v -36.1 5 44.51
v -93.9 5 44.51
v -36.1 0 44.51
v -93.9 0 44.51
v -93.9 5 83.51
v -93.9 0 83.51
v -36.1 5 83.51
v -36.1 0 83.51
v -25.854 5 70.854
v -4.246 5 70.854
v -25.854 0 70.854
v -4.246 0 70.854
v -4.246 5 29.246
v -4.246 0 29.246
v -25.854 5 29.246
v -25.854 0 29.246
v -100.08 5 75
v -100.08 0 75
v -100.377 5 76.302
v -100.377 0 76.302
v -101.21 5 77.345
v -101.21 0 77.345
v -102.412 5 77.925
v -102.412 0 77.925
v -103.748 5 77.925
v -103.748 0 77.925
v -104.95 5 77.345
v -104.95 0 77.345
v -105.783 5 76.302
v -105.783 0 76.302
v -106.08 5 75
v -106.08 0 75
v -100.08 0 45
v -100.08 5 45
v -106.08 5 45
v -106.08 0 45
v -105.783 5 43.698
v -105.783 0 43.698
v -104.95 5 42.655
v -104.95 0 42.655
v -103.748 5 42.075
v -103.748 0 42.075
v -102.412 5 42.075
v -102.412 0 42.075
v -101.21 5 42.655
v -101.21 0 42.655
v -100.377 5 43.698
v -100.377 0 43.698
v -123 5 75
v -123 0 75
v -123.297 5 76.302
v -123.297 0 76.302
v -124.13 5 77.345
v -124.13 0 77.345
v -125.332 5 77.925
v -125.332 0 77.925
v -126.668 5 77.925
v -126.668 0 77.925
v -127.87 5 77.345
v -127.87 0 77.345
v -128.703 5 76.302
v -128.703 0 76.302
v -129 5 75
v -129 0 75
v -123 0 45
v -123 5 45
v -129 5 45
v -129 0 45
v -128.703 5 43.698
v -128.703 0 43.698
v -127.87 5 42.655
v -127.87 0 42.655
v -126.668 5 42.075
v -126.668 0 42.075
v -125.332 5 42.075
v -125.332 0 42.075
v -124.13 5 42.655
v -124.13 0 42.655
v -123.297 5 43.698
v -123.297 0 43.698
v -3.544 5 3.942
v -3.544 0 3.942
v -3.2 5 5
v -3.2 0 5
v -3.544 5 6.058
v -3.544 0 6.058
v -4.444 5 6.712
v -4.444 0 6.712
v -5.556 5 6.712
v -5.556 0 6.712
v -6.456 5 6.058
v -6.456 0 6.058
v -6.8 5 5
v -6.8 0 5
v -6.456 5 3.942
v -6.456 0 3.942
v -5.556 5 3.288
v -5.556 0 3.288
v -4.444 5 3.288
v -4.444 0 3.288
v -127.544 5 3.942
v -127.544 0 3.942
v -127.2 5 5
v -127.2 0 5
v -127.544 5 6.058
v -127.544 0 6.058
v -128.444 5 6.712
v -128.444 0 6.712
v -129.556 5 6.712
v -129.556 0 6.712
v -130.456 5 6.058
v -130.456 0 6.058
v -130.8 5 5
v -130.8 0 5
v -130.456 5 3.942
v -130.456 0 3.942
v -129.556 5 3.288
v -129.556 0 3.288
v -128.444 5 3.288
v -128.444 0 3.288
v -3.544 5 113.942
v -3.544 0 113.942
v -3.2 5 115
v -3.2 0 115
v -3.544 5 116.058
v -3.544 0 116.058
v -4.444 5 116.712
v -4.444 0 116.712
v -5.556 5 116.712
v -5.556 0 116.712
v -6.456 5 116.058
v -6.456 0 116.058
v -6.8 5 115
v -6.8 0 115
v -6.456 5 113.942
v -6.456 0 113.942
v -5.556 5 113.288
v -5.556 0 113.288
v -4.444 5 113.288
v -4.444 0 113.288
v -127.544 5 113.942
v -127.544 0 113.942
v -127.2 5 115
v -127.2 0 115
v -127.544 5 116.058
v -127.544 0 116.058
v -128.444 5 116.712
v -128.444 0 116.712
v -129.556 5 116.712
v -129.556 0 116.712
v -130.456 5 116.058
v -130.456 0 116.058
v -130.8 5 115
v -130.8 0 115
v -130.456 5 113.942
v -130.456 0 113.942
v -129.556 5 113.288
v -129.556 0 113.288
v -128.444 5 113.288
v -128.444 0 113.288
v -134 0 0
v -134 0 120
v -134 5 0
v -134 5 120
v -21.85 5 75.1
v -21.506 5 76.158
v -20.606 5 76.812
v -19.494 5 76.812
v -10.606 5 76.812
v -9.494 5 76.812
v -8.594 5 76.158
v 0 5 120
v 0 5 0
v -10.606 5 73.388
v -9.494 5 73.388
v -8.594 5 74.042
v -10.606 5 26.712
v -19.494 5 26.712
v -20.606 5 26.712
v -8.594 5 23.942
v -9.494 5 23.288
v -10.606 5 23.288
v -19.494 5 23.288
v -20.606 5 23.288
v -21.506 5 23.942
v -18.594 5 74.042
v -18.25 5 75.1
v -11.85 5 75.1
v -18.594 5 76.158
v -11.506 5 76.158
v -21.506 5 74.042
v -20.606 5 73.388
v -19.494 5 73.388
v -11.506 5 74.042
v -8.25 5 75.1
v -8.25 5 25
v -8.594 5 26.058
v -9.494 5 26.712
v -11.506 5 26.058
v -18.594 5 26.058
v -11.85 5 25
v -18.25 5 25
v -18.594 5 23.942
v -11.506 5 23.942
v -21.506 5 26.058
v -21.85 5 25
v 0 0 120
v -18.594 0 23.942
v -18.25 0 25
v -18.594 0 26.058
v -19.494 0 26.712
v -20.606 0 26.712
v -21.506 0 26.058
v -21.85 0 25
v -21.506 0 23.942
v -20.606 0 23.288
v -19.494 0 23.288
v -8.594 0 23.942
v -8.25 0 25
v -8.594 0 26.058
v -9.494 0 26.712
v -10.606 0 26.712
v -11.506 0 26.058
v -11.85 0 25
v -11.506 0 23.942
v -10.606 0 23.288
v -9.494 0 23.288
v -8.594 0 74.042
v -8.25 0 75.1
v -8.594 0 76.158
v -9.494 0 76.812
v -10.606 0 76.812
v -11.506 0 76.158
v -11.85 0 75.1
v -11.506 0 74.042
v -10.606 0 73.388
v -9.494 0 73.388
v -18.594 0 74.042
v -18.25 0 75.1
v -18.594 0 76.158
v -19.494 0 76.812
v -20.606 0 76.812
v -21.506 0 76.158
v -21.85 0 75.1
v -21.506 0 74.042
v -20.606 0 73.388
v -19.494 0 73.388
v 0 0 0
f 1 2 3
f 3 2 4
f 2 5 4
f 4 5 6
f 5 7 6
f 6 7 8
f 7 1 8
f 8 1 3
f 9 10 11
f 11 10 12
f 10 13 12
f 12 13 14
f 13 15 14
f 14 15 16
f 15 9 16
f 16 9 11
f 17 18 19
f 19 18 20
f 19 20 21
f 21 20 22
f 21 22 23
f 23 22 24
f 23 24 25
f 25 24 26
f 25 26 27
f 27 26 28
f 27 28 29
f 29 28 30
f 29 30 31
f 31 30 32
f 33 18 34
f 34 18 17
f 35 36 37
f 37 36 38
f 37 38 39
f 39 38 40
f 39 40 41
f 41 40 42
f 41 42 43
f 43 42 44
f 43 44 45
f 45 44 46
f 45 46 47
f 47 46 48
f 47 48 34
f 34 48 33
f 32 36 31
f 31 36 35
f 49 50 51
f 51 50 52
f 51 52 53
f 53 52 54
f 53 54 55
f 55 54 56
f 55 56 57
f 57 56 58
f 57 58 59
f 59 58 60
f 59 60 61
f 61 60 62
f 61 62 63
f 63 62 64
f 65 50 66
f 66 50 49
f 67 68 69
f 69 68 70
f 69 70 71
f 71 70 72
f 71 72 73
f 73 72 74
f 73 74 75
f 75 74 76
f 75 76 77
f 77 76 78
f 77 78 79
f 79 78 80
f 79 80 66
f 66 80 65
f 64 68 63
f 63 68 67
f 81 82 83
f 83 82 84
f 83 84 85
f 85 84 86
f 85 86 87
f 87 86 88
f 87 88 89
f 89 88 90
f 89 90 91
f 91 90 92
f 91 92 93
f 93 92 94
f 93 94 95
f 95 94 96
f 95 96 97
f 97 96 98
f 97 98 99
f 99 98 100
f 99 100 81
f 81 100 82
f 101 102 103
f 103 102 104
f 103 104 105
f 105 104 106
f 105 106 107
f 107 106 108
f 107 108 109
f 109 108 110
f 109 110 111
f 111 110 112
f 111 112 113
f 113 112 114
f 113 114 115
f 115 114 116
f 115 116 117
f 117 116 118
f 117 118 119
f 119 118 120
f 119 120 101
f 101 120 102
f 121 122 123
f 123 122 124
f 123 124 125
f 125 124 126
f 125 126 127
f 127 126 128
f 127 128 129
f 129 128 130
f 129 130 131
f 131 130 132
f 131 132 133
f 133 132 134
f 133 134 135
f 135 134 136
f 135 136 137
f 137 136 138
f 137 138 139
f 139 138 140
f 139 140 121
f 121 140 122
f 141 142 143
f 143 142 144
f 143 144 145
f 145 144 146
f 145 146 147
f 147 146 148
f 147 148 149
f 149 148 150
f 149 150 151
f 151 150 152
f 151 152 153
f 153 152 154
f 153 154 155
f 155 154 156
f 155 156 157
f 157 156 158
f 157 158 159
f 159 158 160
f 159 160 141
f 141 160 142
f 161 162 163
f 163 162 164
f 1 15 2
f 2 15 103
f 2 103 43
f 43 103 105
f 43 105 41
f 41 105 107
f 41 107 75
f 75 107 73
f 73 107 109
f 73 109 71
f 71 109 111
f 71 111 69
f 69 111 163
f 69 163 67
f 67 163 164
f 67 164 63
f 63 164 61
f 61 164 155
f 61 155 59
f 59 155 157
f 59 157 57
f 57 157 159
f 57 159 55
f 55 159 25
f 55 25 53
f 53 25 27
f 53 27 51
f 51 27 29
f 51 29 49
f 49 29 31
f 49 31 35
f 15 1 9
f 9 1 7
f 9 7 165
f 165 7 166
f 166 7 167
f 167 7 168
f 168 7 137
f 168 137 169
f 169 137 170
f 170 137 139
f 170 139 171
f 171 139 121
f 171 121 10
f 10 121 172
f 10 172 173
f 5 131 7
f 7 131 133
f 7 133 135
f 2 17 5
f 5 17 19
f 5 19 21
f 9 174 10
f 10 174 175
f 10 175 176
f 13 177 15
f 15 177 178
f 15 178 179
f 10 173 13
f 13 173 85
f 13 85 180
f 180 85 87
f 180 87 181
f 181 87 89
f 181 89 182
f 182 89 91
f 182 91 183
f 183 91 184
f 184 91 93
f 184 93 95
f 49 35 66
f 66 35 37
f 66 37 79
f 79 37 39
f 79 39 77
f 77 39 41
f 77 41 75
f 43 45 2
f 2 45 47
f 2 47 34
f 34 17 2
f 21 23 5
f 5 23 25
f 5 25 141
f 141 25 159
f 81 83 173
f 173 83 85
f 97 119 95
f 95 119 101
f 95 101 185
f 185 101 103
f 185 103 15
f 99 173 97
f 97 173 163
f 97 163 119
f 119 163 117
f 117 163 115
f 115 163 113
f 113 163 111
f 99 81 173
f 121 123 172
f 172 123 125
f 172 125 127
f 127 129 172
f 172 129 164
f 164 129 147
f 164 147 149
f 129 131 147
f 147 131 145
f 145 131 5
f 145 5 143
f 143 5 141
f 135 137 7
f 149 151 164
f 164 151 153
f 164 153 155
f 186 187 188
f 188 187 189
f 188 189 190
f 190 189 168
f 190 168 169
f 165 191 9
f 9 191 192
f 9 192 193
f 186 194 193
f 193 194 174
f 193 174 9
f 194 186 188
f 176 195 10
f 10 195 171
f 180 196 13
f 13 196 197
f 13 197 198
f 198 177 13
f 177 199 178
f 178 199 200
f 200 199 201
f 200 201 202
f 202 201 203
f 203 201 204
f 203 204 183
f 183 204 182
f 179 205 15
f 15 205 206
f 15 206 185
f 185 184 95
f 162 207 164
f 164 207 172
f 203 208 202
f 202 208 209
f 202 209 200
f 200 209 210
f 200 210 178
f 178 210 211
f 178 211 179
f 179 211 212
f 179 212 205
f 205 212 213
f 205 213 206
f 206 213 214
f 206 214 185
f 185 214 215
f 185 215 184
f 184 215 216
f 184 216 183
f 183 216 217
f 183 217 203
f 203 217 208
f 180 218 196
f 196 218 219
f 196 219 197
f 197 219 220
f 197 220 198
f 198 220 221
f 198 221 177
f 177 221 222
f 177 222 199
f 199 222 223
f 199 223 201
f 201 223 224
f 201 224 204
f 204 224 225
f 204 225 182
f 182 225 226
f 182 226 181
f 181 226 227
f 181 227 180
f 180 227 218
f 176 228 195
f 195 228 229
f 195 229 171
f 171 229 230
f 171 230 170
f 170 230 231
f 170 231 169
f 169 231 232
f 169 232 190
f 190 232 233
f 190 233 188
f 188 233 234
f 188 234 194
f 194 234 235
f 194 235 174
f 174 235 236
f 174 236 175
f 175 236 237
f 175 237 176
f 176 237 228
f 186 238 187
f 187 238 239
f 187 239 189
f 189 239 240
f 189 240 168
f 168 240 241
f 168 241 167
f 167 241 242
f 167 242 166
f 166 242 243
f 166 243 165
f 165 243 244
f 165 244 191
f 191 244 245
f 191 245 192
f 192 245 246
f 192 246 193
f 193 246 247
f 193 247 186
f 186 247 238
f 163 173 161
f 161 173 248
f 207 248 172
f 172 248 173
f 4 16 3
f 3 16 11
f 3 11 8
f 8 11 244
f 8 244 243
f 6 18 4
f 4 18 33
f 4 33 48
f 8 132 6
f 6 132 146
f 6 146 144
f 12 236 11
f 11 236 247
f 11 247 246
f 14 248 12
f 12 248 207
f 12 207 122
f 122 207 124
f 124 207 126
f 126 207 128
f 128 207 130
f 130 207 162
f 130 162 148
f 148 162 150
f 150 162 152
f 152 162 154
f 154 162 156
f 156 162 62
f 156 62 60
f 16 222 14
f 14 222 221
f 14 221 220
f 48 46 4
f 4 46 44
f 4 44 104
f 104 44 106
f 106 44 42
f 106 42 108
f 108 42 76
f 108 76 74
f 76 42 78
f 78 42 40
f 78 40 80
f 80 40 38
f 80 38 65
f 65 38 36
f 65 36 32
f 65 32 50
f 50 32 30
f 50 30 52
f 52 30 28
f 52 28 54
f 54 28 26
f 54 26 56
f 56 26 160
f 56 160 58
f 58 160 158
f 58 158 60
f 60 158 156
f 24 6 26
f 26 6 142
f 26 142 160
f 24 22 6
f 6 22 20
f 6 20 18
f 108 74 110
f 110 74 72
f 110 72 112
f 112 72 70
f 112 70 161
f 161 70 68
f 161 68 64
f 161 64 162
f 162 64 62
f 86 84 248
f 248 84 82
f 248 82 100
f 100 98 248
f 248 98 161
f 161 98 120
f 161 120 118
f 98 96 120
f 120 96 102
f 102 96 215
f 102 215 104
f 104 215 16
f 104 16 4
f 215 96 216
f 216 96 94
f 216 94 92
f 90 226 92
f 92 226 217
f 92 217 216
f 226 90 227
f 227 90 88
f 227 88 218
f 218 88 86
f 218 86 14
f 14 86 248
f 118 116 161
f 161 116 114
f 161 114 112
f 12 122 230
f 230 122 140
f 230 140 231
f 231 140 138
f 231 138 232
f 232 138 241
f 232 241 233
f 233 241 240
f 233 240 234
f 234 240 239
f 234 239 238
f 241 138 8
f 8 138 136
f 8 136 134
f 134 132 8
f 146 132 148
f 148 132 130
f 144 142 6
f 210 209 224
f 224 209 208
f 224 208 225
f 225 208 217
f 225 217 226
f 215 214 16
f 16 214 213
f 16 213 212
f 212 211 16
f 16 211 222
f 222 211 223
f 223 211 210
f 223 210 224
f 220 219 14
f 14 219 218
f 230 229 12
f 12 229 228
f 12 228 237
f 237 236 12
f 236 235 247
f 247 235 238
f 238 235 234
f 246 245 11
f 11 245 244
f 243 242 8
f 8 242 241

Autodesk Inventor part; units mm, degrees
ref_plane "YZ Plane" through (0, 0, 0) normal (1, 0, 0) x (0, 1, 0)
ref_plane "XZ Plane" through (0, 0, 0) normal (0, 1, 0) x (-1, 0, 0)
ref_plane "XY Plane" through (0, 0, 0) normal (0, 0, 1) x (1, 0, 0)
sketch "Sketch20" plane through (0, 0, 0) normal (0, 1, 0) x (-1, 0, 0)
  line L0 (0, 0) -> (181, 0)
  line L1 (181, 0) -> (181, 120)
  line L2 (181, 120) -> (0, 120)
  line L3 (0, 120) -> (0, 0)
  point P0 (90.5, 120)
  dimension "d122" = 181
  dimension "d123" = 120
extrude "Extrusion15" add sketch "Sketch20" along normal blind 5
sketch "Sketch22" plane through (0, 0, 0) normal (0, -1, 0) x (1, 0, 0)
  line L0 (-25.1, 70.1) -> (-5, 70.1)
  line L1 (-5, 70.1) -> (-5, 30)
  line L2 (-5, 30) -> (-25.1, 30)
  line L3 (-25.1, 30) -> (-25.1, 70.1)
  circle A0 centre (-15.05, 60) radius 1 construction
  line L4 (0, 120) -> (0, 0) construction
  circle A1 centre (-20.05, 25) radius 1.8
  circle A2 centre (-10.05, 25) radius 1.8
  circle A3 centre (-20.05, 75.1) radius 1.8
  circle A4 centre (-10.05, 75.1) radius 1.8
  line L5 (-15.05, 60) -> (0, 60) construction
  dimension "d126" = 40.1
  dimension "d127" = 20.1
  dimension "d128" = 2
  dimension "d129" = 30
  dimension "d130" = 10.05
  dimension "d134" = 5
  dimension "d135" = 5
  dimension "d136" = -5
  dimension "d137" = 5
  dimension "d138" = 5.05
  dimension "d139" = 5.05
  dimension "d140" = 5.05
  dimension "d141" = 5.05
  dimension "d142" = 3.6
  dimension "d159" = 15.05
extrude "Extrusion16" cut sketch "Sketch22" against normal blind 5
sketch "Sketch25" plane through (0, 0, 0) normal (0, -1, 0) x (1, 0, 0)
  line L0 (-181, 0) -> (-181, 120) projected
  line L1 (0, 0) -> (-181, 0) projected
  line L2 (-181, 120) -> (-134, 120)
  line L3 (-134, 120) -> (-134, 0)
  line L4 (-134, 0) -> (-181, 0)
  line L5 (-181, 0) -> (-181, 120)
  dimension "d150" = 47
extrude "Extrusion18" cut sketch "Sketch25" against normal blind 5
sketch "Sketch24" plane through (0, 0, 0) normal (0, -1, 0) x (1, 0, 0)
  circle A0 centre (-5, 5) radius 1.8
  circle A1 centre (-5, 115) radius 1.8
  circle A2 centre (-129, 115) radius 1.8
  circle A3 centre (-129, 5) radius 1.8
  line L0 (0, 0) -> (-181, 0) projected
  line L1 (0, 120) -> (0, 0) projected
  line L2 (-181, 120) -> (0, 120) projected
  circle A4 centre (-20.05, 25) radius 1.8 projected
  circle A5 centre (-10.05, 25) radius 1.8 projected
  circle A6 centre (-10.05, 75.1) radius 1.8 projected
  line L3 (-5, 70.1) -> (-5, 30) projected
  line L4 (-5, 30) -> (-25.1, 30) projected
  line L5 (-25.1, 30) -> (-25.1, 70.1) projected
  line L6 (-25.1, 70.1) -> (-5, 70.1) projected
  circle A7 centre (-20.05, 75.1) radius 1.8 projected
  line L7 (0, 0) -> (-134, 0) projected
  line L8 (0, 120) -> (0, 0) projected
  line L9 (-134, 120) -> (0, 120) projected
  line L10 (-134, 120) -> (-134, 0) projected
  dimension "d143" = 5
  dimension "d144" = 5
  dimension "d145" = 3.6
  dimension "d146" = 5
  dimension "d147" = 5
  dimension "d154" = 5
  dimension "d156" = 5
  dimension "d157" = 5
  dimension "d158" = 5
extrude "Extrusion17" cut sketch "Sketch24" against normal blind 5 contours A0 | A1 | A2 | A3
sketch "Sketch26" plane through (0, 0, 0) normal (0, -1, 0) x (1, 0, 0)
  circle A0 centre (-5, 5) radius 1.8 projected
  circle A1 centre (-129, 5) radius 1.8 projected
  circle A2 centre (-5, 115) radius 1.8 projected
  circle A3 centre (-129, 115) radius 1.8 projected
  line L0 (-134, 120) -> (-134, 0) projected
  line L1 (0, 0) -> (-134, 0) projected
  line L2 (0, 120) -> (0, 0) projected
  line L3 (-134, 120) -> (0, 120) projected
  circle A4 centre (-20.05, 25) radius 1.8 projected
  circle A5 centre (-10.05, 25) radius 1.8 projected
  circle A6 centre (-10.05, 75.1) radius 1.8 projected
  line L4 (-5, 70.1) -> (-5, 30) projected
  line L5 (-5, 30) -> (-25.1, 30) projected
  line L6 (-25.1, 30) -> (-25.1, 70.1) projected
  line L7 (-25.1, 70.1) -> (-5, 70.1) projected
  circle A7 centre (-20.05, 75.1) radius 1.8 projected
  line L8 (-4.5, 70.6) -> (-4.5, 29.5)
  line L9 (-4.5, 29.5) -> (-25.6, 29.5)
  line L10 (-25.6, 29.5) -> (-25.6, 70.6)
  line L11 (-25.6, 70.6) -> (-4.5, 70.6)
  dimension "d176" = 0.5
extrude "Extrusion19" cut sketch "Sketch26" against normal blind 25.4 contours L4 L5 L6 L7 | L8 L9 L10 L11
sketch "Sketch28" plane through (0, 5, 0) normal (0, 1, 0) x (1, 0, 0)
  line L0 (-49, -83.3) -> (-81, -83.3) projected
  arc A0 (-85, -79.3) -> (-81, -83.3) centre (-81, -79.3) ccw projected
  line L1 (-85, -79.3) -> (-85, -47.3) projected
  arc A1 (-81, -43.3) -> (-85, -47.3) centre (-81, -47.3) ccw projected
  line L2 (-81, -43.3) -> (-49, -43.3) projected
  arc A2 (-45, -47.3) -> (-49, -43.3) centre (-49, -47.3) ccw projected
  line L3 (-45, -47.3) -> (-45, -79.3) projected
  arc A3 (-49, -83.3) -> (-45, -79.3) centre (-49, -79.3) ccw projected
  line L4 (-81, -88.38) -> (-49, -88.38)
  arc A4 (-49, -88.38) -> (-39.92, -79.3) centre (-49, -79.3) ccw
  line L5 (-39.92, -79.3) -> (-39.92, -47.3)
  arc A5 (-39.92, -47.3) -> (-49, -38.22) centre (-49, -47.3) ccw
  line L6 (-49, -38.22) -> (-81, -38.22)
  arc A6 (-81, -38.22) -> (-90.08, -47.3) centre (-81, -47.3) ccw
  line L7 (-90.08, -47.3) -> (-90.08, -79.3)
  arc A7 (-90.08, -79.3) -> (-81, -88.38) centre (-81, -79.3) ccw
  point P0 (0, 0)
  dimension "d165" = 5.08
extrude "Extrusion21" cut sketch "Sketch28" against normal blind 25.4 contours L0 A0 L1 A1 L2 A2 L3 A3 | A7 L7 A6 L6 A5 L5 A4 L4
sketch "Sketch29" plane through (0, 5, 0) normal (0, 1, 0) x (1, 0, 0)
  arc A0 (-106.08, -75) -> (-100.08, -75) centre (-103.08, -75) ccw
  line L0 (-100.08, -45) -> (-100.08, -75)
  line L1 (-106.08, -75) -> (-106.08, -45)
  arc A1 (-129, -75) -> (-123, -75) centre (-126, -75) ccw
  line L2 (-123, -45) -> (-123, -75)
  line L3 (-129, -75) -> (-129, -45)
  arc A2 (-123, -45) -> (-129, -45) centre (-126, -45) ccw
  arc A3 (-100.08, -45) -> (-106.08, -45) centre (-103.08, -45) ccw
  line L4 (-39.92, -47.3) -> (-39.92, -79.3) projected
  arc A4 (-49, -88.38) -> (-39.92, -79.3) centre (-49, -79.3) ccw projected
  line L5 (-49, -88.38) -> (-81, -88.38) projected
  arc A5 (-90.08, -79.3) -> (-81, -88.38) centre (-81, -79.3) ccw projected
  line L6 (-90.08, -79.3) -> (-90.08, -47.3) projected
  arc A6 (-81, -38.22) -> (-90.08, -47.3) centre (-81, -47.3) ccw projected
  line L7 (-81, -38.22) -> (-49, -38.22) projected
  arc A7 (-39.92, -47.3) -> (-49, -38.22) centre (-49, -47.3) ccw projected
  line L8 (-25.6, -29.5) -> (-4.5, -29.5) projected
  line L9 (-4.5, -29.5) -> (-4.5, -70.6) projected
  line L10 (-4.5, -70.6) -> (-25.6, -70.6) projected
  line L11 (-25.6, -70.6) -> (-25.6, -29.5) projected
  circle A8 centre (-5, -5) radius 1.8 projected
  circle A9 centre (-129, -5) radius 1.8 projected
  circle A10 centre (-5, -115) radius 1.8 projected
  circle A11 centre (-129, -115) radius 1.8 projected
  line L12 (-134, 0) -> (-134, -120) projected
  line L13 (-134, -120) -> (0, -120) projected
  line L14 (0, -120) -> (0, 0) projected
  line L15 (0, 0) -> (-134, 0) projected
  circle A12 centre (-20.05, -75.1) radius 1.8 projected
  circle A13 centre (-10.05, -75.1) radius 1.8 projected
  circle A14 centre (-10.05, -25) radius 1.8 projected
  circle A15 centre (-20.05, -25) radius 1.8 projected
  line L16 (-129, -60) -> (-134, -60) construction
  line L17 (-106.08, -60) -> (-123, -60) construction
  line L18 (-129, -45) -> (-126, -45) construction
  line L19 (-103.08, -45) -> (-106.08, -45) construction
  dimension "d139" = 5.05
  dimension "d168" = 30
  dimension "d169" = 5
  dimension "d170" = 10
  dimension "d171" = 6
  dimension "d172" = 6
  dimension "d173" = 3
extrude "Extrusion22" cut sketch "Sketch29" against normal blind 25.4 contours L1 A3 L0 A0 | L3 A2 L2 A1
sketch "Sketch30" plane through (0, 5, 0) normal (0, 1, 0) x (1, 0, 0)
  arc A0 (-100.08, -45) -> (-106.08, -45) centre (-103.08, -45) ccw projected
  line L0 (-100.08, -45) -> (-100.08, -75) projected
  arc A1 (-106.08, -75) -> (-100.08, -75) centre (-103.08, -75) ccw projected
  line L1 (-106.08, -75) -> (-106.08, -45) projected
  arc A2 (-123, -45) -> (-129, -45) centre (-126, -45) ccw projected
  line L2 (-123, -45) -> (-123, -75) projected
  arc A3 (-129, -75) -> (-123, -75) centre (-126, -75) ccw projected
  line L3 (-129, -75) -> (-129, -45) projected
  line L4 (-39.92, -47.3) -> (-39.92, -79.3) projected
  arc A4 (-49, -88.38) -> (-39.92, -79.3) centre (-49, -79.3) ccw projected
  line L5 (-49, -88.38) -> (-81, -88.38) projected
  arc A5 (-90.08, -79.3) -> (-81, -88.38) centre (-81, -79.3) ccw projected
  line L6 (-90.08, -79.3) -> (-90.08, -47.3) projected
  arc A6 (-81, -38.22) -> (-90.08, -47.3) centre (-81, -47.3) ccw projected
  line L7 (-81, -38.22) -> (-49, -38.22) projected
  arc A7 (-39.92, -47.3) -> (-49, -38.22) centre (-49, -47.3) ccw projected
  line L8 (-25.6, -29.5) -> (-4.5, -29.5) projected
  line L9 (-4.5, -29.5) -> (-4.5, -70.6) projected
  line L10 (-4.5, -70.6) -> (-25.6, -70.6) projected
  line L11 (-25.6, -70.6) -> (-25.6, -29.5) projected
  circle A8 centre (-5, -5) radius 1.8 projected
  circle A9 centre (-129, -5) radius 1.8 projected
  circle A10 centre (-5, -115) radius 1.8 projected
  circle A11 centre (-129, -115) radius 1.8 projected
  line L12 (-134, 0) -> (-134, -120) projected
  line L13 (-134, -120) -> (0, -120) projected
  line L14 (0, -120) -> (0, 0) projected
  line L15 (0, 0) -> (-134, 0) projected
  circle A12 centre (-20.05, -75.1) radius 1.8 projected
  circle A13 centre (-10.05, -75.1) radius 1.8 projected
  circle A14 centre (-10.05, -25) radius 1.8 projected
  circle A15 centre (-20.05, -25) radius 1.8 projected
extrude "Extrusion23" add sketch "Sketch30" against normal blind 5 contours L4 A4 L5 A5 L6 A6 L7 A7
sketch "Sketch31" plane through (0, 5, 0) normal (0, 1, 0) x (1, 0, 0)
  arc A0 (-100.08, -45) -> (-106.08, -45) centre (-103.08, -45) ccw projected
  line L0 (-100.08, -45) -> (-100.08, -75) projected
  arc A1 (-106.08, -75) -> (-100.08, -75) centre (-103.08, -75) ccw projected
  line L1 (-106.08, -75) -> (-106.08, -45) projected
  arc A2 (-123, -45) -> (-129, -45) centre (-126, -45) ccw projected
  line L2 (-123, -45) -> (-123, -75) projected
  arc A3 (-129, -75) -> (-123, -75) centre (-126, -75) ccw projected
  line L3 (-129, -75) -> (-129, -45) projected
  line L4 (-25.6, -29.5) -> (-4.5, -29.5) projected
  line L5 (-4.5, -29.5) -> (-4.5, -70.6) projected
  line L6 (-4.5, -70.6) -> (-25.6, -70.6) projected
  line L7 (-25.6, -70.6) -> (-25.6, -29.5) projected
  circle A4 centre (-5, -5) radius 1.8 projected
  circle A5 centre (-129, -5) radius 1.8 projected
  circle A6 centre (-5, -115) radius 1.8 projected
  circle A7 centre (-129, -115) radius 1.8 projected
  line L8 (-134, 0) -> (-134, -120) projected
  line L9 (-134, -120) -> (0, -120) projected
  line L10 (0, -120) -> (0, 0) projected
  line L11 (0, 0) -> (-134, 0) projected
  circle A8 centre (-20.05, -75.1) radius 1.8 projected
  circle A9 centre (-10.05, -75.1) radius 1.8 projected
  circle A10 centre (-10.05, -25) radius 1.8 projected
  circle A11 centre (-20.05, -25) radius 1.8 projected
  line L12 (-4.246, -29.246) -> (-25.854, -29.246)
  line L13 (-25.854, -29.246) -> (-25.854, -70.854)
  line L14 (-25.854, -70.854) -> (-4.246, -70.854)
  line L15 (-4.246, -70.854) -> (-4.246, -29.246)
  dimension "d179" = 0.254
extrude "Extrusion24" cut sketch "Sketch31" against normal blind 5 contours L4 L5 L6 L7 | L15 L14 L13 L12
sketch "Sketch32" plane through (0, 5, 0) normal (0, 1, 0) x (1, 0, 0)
  line L0 (-93.9, -44.81) -> (-93.9, -83.21) projected
  line L1 (-93.9, -83.51) -> (-36.1, -83.51) projected
  line L2 (-93.9, -83.51) -> (-36.1, -83.51) projected
  line L3 (-36.1, -83.21) -> (-36.1, -44.81) projected
  line L4 (-93.9, -83.21) -> (-36.1, -83.21) projected
  line L5 (-36.1, -44.81) -> (-93.9, -44.81) projected
  line L6 (-36.1, -44.51) -> (-93.9, -44.51) projected
  line L7 (-36.1, -44.51) -> (-93.9, -44.51) projected
  line L8 (-36.1, -83.51) -> (-93.9, -83.51)
  line L9 (-93.9, -83.51) -> (-93.9, -44.51)
  line L10 (-93.9, -44.51) -> (-36.1, -44.51)
  line L11 (-36.1, -44.51) -> (-36.1, -83.51)
  point P0 (0, 0)
extrude "Extrusion25" cut sketch "Sketch32" against normal blind 5
properties part number "tamiya_chassis_3DPrint"
